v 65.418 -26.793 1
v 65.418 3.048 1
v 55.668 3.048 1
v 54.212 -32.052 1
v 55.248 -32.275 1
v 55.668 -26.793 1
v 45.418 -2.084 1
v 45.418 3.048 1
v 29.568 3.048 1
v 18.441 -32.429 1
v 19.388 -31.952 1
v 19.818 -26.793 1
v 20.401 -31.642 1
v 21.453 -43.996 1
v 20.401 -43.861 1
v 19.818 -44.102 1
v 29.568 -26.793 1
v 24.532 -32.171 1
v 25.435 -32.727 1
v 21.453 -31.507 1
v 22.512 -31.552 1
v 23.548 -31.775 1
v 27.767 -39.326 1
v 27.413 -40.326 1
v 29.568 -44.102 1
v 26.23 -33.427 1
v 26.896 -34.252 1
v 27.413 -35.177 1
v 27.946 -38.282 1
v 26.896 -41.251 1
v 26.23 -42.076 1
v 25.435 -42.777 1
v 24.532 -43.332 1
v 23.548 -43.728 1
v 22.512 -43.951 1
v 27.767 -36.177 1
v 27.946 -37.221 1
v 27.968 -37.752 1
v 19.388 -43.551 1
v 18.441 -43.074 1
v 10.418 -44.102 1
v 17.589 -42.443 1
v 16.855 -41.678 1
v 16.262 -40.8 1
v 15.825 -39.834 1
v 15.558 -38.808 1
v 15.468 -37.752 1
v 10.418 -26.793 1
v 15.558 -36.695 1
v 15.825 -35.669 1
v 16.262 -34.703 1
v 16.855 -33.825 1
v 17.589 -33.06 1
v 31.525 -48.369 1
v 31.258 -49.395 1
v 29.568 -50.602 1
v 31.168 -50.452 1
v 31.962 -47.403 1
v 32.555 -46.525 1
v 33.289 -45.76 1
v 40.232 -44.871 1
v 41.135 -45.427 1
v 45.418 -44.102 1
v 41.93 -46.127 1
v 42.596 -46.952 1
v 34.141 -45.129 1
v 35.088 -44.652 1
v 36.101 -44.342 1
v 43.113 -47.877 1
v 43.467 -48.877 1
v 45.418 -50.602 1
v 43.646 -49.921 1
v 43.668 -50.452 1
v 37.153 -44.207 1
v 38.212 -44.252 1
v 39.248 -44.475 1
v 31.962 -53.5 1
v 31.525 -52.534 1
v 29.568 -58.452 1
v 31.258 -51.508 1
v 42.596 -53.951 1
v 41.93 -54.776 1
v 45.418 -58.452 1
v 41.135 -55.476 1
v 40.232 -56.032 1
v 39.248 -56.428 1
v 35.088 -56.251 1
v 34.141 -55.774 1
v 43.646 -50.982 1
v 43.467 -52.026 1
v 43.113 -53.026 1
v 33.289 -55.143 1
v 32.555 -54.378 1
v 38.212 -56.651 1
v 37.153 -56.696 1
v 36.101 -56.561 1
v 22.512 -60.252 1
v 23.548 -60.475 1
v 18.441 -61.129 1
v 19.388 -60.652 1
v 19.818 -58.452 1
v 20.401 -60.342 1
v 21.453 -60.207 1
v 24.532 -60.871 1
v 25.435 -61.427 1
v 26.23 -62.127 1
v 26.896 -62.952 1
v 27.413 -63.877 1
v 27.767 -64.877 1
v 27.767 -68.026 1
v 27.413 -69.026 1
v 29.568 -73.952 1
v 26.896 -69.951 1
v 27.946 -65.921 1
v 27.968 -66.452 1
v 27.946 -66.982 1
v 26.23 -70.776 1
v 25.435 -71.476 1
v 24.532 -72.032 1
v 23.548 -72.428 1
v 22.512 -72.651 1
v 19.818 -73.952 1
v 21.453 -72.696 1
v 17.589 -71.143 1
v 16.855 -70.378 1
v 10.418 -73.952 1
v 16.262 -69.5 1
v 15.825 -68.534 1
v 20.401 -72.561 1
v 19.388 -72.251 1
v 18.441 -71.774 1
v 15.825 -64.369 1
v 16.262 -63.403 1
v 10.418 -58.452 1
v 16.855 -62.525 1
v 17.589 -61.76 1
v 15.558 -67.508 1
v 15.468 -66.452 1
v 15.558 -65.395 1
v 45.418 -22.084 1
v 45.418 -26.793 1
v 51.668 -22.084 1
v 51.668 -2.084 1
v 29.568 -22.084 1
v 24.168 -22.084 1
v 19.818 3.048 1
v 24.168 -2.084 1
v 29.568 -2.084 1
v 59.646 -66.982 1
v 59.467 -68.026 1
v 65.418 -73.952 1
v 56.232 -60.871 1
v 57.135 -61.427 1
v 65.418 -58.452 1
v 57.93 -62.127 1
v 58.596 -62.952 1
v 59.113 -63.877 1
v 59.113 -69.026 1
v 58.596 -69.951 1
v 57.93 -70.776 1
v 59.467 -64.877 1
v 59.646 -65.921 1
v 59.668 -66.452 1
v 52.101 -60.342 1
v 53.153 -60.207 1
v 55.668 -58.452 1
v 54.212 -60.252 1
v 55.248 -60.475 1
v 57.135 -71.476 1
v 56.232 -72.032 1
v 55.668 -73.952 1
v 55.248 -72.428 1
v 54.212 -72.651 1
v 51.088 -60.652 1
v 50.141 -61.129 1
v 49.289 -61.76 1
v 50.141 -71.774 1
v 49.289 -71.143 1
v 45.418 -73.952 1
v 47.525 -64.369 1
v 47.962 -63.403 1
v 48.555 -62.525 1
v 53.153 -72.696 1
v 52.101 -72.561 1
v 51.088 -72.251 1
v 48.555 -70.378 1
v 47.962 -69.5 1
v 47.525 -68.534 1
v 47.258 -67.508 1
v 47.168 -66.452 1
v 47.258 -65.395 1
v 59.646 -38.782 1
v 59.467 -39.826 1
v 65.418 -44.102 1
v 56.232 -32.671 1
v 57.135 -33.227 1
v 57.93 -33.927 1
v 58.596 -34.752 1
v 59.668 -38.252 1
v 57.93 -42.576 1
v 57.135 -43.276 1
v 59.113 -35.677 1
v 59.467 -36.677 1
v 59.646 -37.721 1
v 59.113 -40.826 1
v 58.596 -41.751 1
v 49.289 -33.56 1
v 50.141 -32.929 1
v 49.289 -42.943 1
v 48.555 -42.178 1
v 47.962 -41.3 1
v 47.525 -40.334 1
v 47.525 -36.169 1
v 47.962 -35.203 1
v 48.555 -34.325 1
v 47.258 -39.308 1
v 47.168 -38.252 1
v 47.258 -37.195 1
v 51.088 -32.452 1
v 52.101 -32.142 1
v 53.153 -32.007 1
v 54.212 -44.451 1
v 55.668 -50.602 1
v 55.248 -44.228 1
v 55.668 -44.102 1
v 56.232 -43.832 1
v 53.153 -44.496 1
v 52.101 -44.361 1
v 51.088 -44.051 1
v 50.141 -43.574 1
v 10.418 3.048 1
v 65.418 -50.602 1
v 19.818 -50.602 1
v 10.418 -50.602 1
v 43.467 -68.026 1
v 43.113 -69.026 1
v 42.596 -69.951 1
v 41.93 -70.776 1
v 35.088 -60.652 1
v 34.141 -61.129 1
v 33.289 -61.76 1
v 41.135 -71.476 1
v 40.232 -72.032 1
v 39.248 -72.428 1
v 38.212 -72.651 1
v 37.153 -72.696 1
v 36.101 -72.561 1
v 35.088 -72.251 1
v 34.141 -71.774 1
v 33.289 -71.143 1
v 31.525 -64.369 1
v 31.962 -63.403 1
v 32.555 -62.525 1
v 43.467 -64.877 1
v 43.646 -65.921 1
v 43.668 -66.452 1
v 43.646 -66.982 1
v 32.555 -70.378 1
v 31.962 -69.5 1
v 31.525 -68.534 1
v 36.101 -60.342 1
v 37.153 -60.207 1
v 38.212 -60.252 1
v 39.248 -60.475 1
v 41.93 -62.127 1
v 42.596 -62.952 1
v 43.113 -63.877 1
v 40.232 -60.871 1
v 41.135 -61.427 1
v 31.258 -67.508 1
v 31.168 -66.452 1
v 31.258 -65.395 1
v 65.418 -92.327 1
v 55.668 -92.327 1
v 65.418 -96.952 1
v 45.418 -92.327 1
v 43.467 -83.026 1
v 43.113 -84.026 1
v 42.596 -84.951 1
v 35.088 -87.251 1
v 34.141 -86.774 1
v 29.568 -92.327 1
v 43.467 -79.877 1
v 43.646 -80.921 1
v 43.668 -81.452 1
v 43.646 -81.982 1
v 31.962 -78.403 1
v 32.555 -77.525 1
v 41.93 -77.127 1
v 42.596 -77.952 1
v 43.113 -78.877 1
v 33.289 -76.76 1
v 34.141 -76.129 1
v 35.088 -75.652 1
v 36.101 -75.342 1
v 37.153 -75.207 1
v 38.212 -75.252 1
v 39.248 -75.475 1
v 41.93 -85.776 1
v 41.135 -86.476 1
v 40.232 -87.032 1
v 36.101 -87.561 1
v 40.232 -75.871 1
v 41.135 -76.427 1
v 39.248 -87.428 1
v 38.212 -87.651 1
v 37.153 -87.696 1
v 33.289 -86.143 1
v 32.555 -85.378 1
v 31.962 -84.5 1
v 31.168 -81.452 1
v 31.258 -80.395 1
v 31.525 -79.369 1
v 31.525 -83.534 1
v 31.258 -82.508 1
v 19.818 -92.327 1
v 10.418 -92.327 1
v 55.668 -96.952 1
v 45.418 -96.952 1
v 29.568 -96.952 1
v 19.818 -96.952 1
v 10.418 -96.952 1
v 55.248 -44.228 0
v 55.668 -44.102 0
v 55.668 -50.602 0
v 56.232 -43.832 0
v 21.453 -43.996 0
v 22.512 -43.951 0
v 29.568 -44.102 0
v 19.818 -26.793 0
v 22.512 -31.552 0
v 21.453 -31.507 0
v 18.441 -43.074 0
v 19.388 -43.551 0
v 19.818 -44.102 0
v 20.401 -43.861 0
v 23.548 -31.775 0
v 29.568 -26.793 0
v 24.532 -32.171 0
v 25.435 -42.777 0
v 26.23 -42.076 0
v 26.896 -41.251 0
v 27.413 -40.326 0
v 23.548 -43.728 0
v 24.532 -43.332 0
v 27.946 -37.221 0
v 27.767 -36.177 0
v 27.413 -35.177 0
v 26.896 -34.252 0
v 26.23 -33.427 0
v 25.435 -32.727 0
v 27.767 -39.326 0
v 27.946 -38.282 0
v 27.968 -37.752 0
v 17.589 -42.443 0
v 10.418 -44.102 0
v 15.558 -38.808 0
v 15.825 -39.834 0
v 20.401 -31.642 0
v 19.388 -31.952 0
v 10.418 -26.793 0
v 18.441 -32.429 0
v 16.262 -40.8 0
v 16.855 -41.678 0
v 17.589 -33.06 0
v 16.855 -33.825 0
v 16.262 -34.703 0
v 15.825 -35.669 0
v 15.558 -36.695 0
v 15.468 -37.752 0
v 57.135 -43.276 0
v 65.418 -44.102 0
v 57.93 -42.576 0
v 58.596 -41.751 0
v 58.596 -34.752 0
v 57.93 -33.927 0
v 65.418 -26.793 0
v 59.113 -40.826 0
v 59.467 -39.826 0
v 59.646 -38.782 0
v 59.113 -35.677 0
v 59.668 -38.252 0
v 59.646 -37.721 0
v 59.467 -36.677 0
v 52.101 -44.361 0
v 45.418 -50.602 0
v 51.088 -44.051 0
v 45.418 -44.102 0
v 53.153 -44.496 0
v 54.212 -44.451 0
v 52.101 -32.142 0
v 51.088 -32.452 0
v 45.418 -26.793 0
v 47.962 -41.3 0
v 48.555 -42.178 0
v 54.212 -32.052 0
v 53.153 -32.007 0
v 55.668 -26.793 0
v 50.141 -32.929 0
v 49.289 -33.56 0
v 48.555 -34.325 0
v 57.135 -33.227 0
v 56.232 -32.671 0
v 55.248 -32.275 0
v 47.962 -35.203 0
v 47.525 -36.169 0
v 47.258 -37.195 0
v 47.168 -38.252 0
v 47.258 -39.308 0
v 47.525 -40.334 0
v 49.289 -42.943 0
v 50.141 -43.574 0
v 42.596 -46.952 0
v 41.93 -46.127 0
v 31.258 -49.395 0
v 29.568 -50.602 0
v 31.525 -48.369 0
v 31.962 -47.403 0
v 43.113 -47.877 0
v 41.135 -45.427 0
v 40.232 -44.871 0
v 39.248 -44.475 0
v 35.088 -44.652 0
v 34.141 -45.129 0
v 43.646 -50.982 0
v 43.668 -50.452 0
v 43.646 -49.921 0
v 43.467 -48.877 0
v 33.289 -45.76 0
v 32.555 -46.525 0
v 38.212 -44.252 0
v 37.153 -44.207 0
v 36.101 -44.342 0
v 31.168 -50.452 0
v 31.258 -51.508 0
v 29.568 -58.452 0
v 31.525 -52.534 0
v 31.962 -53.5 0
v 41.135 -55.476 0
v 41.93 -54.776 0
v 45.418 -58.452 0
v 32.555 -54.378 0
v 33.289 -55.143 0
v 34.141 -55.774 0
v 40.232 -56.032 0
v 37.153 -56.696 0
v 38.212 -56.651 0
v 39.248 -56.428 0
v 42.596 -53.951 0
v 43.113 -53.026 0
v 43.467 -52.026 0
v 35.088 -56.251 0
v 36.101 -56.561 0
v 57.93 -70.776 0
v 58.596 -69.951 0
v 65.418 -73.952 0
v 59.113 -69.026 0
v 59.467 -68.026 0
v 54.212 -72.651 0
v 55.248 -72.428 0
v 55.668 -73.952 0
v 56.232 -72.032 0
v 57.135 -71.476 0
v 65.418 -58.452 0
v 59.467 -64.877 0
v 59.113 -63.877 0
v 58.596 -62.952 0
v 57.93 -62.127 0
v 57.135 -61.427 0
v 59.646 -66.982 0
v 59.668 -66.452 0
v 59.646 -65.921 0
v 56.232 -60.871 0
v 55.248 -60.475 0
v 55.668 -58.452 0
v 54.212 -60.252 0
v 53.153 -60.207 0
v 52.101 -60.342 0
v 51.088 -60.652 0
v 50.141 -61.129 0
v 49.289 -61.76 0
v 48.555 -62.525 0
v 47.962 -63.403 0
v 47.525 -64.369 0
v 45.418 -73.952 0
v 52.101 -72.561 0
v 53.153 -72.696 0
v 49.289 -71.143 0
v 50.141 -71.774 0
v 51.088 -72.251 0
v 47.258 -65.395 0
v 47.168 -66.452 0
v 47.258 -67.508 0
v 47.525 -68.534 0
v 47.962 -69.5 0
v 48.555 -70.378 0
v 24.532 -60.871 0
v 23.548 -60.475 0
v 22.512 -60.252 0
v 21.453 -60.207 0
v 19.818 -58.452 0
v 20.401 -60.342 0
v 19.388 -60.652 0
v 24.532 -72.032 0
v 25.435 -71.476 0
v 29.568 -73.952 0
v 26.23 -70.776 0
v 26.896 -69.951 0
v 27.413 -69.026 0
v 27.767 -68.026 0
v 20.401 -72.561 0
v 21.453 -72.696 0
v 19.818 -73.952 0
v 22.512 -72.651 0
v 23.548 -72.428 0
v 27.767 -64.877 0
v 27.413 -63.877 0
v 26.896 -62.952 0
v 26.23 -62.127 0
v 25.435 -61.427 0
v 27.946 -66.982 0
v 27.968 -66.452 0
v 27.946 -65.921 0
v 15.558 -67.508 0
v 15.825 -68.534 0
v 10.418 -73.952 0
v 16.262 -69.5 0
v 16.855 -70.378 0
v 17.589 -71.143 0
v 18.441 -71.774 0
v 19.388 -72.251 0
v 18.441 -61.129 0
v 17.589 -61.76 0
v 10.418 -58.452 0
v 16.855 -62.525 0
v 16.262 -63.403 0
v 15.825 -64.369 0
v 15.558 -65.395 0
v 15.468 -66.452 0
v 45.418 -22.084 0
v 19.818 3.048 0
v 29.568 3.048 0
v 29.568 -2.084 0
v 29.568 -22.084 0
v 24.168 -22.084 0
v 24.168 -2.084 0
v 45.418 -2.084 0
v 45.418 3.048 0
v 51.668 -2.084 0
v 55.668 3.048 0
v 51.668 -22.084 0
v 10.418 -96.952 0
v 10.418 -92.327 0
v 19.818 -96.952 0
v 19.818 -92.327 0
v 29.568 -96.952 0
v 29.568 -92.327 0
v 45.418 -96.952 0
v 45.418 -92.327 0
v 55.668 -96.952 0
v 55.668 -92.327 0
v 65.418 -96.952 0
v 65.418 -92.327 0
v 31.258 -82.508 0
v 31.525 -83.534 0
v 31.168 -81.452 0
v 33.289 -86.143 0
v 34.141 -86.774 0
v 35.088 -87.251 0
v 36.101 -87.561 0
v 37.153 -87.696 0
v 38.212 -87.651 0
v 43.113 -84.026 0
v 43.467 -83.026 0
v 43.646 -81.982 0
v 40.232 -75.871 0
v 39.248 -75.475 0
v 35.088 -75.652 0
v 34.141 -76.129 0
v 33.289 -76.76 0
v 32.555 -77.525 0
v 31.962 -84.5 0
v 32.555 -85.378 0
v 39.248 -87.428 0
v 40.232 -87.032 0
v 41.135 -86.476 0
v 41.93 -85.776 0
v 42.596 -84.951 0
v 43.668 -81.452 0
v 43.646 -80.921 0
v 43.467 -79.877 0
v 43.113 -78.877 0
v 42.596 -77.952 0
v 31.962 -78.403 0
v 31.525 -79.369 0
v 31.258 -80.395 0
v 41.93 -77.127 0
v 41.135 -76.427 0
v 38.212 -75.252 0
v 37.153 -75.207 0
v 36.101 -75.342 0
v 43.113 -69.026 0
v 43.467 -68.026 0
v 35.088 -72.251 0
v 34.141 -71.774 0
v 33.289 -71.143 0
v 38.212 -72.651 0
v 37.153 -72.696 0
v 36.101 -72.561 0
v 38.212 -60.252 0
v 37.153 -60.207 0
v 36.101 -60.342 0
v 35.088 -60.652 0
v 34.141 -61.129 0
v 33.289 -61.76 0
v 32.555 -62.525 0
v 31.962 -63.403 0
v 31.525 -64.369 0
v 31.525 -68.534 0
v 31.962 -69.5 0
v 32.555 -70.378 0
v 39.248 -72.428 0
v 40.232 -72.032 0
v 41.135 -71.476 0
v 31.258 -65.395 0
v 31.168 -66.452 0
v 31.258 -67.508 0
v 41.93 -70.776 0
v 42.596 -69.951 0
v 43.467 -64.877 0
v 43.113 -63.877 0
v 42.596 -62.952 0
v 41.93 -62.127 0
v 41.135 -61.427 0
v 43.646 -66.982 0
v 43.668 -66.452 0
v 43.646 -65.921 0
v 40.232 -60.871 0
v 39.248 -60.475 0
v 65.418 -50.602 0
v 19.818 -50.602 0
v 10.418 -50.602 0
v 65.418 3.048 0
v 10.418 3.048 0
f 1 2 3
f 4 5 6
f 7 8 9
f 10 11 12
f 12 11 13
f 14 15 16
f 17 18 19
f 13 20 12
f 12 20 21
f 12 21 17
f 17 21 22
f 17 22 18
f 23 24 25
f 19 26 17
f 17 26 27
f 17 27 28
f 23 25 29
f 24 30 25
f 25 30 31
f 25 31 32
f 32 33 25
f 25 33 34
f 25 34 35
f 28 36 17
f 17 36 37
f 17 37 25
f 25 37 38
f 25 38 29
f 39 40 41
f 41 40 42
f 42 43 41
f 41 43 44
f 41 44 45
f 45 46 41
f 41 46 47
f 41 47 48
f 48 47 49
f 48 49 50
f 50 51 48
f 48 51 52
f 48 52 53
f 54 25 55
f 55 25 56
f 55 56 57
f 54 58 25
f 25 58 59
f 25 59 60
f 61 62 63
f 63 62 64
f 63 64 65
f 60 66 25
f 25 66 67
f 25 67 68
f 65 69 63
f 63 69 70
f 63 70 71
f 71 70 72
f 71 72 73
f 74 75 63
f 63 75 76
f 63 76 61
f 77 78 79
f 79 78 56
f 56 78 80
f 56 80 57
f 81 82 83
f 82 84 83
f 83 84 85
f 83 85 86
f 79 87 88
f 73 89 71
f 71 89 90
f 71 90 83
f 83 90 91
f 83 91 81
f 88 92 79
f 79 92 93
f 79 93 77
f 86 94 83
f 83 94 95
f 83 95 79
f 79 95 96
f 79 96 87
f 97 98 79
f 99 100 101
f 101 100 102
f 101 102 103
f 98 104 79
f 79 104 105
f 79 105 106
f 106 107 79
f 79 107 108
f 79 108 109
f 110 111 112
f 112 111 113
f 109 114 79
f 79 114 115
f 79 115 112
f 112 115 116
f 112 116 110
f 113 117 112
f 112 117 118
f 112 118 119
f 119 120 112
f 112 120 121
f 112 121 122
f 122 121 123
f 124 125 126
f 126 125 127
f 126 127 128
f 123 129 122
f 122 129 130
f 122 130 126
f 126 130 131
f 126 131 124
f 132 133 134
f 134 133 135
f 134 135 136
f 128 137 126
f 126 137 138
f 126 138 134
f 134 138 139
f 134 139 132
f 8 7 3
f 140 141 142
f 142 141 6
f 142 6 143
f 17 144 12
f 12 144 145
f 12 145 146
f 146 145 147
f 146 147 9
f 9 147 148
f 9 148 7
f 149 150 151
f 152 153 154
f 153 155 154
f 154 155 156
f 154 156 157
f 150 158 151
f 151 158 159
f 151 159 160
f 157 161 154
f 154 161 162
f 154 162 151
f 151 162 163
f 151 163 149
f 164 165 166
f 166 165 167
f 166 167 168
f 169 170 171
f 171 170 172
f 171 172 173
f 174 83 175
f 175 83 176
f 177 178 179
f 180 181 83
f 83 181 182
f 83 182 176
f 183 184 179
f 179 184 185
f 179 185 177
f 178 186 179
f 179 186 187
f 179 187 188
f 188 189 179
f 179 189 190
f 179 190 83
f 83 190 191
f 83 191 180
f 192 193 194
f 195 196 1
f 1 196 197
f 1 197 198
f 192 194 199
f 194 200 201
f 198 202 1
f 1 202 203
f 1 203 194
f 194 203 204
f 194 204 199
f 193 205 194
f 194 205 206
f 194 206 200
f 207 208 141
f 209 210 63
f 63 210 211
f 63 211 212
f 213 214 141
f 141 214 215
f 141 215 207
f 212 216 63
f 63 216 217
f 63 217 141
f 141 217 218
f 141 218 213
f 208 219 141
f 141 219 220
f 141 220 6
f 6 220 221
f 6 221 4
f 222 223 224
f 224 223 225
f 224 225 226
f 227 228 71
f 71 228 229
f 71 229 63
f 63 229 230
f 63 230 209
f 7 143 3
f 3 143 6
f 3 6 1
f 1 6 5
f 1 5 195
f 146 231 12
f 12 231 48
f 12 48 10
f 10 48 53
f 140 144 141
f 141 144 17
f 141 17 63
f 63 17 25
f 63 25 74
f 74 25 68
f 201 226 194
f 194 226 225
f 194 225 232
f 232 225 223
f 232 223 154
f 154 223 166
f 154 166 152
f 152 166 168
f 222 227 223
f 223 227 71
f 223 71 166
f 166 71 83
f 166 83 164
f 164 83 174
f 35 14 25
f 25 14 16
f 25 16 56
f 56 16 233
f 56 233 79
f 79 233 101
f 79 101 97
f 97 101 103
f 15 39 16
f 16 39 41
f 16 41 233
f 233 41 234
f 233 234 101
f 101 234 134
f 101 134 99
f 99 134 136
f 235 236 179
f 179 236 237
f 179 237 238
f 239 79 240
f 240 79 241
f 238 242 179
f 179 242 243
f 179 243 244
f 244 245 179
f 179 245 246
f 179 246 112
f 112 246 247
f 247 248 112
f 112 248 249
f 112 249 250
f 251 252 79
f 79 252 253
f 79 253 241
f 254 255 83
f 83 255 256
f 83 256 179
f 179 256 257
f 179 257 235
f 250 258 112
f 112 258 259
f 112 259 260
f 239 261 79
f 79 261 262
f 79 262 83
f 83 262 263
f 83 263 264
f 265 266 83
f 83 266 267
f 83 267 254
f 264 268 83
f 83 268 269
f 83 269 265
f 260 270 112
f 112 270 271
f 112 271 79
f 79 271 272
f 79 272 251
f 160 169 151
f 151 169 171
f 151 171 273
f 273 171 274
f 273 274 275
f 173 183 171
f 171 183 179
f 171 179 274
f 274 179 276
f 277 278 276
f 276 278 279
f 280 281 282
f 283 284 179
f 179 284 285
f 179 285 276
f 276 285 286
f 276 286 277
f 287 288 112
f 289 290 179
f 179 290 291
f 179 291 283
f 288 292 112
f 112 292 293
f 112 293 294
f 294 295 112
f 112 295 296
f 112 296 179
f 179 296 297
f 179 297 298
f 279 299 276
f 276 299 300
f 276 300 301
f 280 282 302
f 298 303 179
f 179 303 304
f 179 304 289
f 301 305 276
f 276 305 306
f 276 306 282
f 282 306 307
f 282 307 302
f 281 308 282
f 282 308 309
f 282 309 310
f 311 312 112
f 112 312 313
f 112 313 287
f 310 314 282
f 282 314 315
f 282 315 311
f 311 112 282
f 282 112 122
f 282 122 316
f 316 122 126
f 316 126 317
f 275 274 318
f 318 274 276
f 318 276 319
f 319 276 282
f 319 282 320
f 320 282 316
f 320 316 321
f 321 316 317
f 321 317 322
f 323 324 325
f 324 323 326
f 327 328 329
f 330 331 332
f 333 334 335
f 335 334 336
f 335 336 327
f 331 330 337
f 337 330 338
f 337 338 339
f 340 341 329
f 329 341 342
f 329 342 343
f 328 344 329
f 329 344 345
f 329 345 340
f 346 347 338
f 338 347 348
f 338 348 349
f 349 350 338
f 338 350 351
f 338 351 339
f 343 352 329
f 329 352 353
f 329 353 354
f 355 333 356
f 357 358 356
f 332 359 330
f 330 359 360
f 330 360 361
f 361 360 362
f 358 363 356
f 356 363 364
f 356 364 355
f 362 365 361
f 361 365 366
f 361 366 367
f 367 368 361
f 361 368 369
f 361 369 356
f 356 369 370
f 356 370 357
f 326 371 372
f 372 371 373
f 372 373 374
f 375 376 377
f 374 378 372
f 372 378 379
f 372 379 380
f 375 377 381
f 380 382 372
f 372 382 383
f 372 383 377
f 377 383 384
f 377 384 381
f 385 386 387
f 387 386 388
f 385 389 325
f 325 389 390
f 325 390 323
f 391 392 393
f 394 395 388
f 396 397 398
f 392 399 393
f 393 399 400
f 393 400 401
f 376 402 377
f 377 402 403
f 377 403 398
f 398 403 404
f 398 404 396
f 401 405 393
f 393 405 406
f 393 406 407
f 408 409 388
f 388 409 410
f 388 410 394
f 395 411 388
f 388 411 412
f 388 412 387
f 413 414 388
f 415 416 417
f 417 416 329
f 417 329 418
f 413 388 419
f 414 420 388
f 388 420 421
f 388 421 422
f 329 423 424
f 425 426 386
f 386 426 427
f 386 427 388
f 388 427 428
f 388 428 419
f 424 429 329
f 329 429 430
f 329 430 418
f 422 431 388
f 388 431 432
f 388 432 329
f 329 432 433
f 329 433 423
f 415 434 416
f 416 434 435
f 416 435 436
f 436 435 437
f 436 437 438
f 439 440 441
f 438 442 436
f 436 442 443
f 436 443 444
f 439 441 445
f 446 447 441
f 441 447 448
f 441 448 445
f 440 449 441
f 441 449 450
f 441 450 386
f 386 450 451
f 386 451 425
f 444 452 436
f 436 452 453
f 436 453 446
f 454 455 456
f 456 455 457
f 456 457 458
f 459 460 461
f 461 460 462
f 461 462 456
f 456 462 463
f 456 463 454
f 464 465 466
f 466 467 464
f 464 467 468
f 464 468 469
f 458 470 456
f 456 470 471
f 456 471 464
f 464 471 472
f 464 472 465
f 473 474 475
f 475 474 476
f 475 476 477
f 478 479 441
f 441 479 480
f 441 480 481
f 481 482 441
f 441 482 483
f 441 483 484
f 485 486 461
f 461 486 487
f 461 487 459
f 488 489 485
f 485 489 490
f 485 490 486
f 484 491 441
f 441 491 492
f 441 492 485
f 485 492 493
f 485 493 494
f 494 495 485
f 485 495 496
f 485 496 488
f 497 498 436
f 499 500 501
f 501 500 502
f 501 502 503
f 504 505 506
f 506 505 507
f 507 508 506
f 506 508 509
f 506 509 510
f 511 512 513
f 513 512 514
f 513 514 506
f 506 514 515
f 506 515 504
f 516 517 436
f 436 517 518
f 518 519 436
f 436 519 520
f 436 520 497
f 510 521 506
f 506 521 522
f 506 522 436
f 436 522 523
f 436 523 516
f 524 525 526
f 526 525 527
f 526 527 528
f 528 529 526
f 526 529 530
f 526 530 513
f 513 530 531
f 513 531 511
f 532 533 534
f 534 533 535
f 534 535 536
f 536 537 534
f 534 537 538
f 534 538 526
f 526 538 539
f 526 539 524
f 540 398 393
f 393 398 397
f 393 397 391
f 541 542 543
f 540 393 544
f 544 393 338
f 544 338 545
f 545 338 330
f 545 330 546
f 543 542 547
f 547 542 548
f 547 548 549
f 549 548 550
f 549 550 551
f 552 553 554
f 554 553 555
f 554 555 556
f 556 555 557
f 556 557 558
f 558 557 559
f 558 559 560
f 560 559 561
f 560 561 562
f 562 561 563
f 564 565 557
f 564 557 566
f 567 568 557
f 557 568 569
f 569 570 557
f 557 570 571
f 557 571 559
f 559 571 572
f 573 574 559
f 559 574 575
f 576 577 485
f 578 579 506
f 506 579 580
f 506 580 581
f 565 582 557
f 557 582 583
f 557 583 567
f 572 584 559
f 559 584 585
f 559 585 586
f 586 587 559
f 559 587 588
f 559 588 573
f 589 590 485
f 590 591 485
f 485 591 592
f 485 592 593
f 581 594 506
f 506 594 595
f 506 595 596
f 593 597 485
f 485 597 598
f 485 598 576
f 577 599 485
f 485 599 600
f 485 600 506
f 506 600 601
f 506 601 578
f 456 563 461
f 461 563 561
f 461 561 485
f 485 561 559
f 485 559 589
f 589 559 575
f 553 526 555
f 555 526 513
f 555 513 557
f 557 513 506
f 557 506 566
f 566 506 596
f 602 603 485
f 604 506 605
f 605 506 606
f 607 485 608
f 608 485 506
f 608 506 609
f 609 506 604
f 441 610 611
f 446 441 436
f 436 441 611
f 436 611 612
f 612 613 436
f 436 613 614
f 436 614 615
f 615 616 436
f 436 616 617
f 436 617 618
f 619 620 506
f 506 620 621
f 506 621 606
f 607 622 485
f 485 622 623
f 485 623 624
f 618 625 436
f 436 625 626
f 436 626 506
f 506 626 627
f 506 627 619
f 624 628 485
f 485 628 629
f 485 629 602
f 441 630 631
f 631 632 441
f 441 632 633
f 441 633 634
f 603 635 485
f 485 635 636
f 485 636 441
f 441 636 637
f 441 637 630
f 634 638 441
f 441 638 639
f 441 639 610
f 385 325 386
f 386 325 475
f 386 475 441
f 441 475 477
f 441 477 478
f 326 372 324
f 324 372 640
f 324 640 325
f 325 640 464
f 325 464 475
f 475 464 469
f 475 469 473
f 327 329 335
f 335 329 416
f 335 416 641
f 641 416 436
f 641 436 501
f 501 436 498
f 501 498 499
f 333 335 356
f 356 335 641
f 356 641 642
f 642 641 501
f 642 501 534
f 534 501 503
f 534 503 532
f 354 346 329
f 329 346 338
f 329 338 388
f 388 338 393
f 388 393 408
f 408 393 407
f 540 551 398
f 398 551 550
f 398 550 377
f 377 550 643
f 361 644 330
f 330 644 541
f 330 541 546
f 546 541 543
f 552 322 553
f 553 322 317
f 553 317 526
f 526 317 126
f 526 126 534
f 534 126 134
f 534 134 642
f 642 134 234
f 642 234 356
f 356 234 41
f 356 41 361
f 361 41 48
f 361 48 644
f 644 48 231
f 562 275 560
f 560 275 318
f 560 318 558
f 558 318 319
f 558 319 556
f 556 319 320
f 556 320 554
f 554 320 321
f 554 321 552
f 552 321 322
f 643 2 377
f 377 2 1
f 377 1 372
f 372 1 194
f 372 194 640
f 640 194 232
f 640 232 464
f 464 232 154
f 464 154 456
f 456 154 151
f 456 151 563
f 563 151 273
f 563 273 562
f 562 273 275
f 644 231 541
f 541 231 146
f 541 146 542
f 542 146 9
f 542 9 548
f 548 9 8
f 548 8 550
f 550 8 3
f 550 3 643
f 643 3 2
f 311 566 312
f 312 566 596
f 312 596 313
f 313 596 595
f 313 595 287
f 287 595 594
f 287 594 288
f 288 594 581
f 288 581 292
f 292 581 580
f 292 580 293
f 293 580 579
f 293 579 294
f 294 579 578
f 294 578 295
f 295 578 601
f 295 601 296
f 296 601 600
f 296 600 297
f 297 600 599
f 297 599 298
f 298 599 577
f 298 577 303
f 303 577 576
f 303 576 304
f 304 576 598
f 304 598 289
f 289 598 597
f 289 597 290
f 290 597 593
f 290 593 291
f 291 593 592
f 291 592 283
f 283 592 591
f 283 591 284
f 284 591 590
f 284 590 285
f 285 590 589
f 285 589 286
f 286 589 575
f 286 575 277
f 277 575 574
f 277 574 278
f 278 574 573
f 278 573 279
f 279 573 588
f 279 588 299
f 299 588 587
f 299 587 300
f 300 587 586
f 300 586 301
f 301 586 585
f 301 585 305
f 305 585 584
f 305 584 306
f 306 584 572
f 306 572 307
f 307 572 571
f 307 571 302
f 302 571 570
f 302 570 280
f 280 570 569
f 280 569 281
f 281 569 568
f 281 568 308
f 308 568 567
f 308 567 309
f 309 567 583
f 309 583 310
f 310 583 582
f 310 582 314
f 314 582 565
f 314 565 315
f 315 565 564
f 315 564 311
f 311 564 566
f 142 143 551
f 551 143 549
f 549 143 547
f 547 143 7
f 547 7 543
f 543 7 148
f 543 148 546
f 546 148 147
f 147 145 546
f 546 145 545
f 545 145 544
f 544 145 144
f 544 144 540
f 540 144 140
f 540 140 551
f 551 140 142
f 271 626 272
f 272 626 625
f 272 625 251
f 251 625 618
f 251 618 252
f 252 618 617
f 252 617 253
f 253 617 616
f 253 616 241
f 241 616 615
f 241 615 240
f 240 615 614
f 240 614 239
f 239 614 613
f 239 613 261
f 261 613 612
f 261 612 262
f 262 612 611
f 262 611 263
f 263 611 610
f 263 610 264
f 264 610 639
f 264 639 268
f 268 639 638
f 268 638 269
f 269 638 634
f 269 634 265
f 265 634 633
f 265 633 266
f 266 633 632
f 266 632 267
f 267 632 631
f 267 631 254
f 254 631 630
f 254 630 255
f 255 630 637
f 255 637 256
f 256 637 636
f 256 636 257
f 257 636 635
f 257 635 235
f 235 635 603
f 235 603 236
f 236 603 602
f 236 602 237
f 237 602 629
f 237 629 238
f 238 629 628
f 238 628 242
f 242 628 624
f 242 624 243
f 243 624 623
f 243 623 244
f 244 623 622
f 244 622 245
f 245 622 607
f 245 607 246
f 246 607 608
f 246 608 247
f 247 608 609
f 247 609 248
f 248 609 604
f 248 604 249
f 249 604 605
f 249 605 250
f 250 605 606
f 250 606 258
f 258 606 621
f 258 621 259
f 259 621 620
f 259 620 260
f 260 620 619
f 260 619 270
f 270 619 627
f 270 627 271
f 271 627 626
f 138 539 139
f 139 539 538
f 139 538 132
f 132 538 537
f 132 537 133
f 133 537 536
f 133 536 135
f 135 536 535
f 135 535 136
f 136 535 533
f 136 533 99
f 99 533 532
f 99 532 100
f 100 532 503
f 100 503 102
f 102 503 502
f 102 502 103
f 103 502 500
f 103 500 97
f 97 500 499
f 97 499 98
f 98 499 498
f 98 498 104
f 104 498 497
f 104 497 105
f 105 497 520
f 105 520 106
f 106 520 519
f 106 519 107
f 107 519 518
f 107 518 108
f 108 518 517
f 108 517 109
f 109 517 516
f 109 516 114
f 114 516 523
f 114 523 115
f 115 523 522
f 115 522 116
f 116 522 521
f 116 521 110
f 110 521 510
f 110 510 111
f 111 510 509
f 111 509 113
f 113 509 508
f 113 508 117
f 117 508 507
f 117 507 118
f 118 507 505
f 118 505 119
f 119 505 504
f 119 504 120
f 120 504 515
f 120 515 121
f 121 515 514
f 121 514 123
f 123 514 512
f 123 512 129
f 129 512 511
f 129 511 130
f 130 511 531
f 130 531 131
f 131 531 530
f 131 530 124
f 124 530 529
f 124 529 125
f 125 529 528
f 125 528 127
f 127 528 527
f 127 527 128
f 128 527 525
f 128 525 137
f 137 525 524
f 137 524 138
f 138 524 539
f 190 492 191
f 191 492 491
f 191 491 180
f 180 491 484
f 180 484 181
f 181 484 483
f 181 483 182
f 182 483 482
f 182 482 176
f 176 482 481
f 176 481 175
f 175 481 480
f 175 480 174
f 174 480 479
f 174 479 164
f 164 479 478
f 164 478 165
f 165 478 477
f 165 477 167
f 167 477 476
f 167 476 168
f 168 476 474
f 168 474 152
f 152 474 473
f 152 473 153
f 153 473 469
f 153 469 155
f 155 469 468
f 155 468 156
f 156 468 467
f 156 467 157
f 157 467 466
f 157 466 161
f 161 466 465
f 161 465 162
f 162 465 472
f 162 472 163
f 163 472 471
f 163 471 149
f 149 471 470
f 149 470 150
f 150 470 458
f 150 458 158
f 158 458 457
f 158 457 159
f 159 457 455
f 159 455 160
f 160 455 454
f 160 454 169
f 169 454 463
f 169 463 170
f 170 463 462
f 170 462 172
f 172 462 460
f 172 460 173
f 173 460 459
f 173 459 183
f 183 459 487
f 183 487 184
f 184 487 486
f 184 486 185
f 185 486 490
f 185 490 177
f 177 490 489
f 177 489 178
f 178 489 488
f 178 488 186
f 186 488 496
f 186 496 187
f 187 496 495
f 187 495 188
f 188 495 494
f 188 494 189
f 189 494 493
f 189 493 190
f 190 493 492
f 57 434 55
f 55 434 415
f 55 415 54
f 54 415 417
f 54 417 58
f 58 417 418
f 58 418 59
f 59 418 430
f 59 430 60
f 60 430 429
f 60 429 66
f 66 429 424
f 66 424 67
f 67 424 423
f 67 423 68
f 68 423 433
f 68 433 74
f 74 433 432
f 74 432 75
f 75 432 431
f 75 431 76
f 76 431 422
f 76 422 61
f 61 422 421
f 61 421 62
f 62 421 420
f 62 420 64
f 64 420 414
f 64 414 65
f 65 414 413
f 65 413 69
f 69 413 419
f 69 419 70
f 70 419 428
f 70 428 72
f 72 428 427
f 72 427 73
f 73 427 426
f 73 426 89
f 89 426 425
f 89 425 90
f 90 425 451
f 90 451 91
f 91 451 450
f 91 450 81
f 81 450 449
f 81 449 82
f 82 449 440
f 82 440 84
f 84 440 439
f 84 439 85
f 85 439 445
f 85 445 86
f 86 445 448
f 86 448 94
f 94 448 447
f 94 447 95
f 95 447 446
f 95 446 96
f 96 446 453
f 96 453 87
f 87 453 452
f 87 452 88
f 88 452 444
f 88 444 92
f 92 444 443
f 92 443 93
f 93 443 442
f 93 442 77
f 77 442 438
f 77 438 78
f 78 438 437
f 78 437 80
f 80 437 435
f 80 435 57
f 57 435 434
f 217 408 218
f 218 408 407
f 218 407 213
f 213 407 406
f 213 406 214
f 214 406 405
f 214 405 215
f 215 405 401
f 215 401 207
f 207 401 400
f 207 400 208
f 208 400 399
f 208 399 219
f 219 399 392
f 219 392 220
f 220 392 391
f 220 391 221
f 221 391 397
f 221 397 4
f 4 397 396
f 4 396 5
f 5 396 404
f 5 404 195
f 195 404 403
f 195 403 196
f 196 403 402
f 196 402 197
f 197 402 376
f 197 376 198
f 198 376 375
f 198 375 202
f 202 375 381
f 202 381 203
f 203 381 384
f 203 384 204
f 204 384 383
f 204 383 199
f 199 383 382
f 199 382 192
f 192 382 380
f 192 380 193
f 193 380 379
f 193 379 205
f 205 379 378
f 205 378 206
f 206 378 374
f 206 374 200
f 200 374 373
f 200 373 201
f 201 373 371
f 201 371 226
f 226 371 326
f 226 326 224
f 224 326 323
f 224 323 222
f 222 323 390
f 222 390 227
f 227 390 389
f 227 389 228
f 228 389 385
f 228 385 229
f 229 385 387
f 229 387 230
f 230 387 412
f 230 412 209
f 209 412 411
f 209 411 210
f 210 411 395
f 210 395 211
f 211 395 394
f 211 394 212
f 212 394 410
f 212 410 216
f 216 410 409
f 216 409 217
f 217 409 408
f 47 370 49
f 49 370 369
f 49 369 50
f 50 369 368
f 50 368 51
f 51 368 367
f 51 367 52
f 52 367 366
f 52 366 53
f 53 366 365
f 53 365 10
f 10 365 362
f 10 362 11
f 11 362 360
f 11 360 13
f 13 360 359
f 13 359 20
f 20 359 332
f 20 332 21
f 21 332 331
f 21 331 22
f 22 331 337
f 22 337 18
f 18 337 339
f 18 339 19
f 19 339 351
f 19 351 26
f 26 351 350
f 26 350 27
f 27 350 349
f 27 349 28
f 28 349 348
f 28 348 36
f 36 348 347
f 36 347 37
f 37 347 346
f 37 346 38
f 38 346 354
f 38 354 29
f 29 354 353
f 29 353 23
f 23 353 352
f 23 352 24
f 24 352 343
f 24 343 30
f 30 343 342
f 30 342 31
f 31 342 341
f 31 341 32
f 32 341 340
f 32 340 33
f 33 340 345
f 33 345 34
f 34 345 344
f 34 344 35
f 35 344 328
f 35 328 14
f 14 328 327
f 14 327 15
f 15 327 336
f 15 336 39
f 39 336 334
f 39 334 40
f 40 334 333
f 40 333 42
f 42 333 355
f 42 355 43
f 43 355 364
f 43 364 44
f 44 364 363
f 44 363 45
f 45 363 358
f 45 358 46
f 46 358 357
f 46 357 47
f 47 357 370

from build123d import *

# Parameters (mm, degrees)
SKETCH_1_W      = 55
SKETCH_1_H      = 100
SKETCH_1_R      = 6.25
SKETCH_1_W_2    = 27.5
SKETCH_1_H_2    = 20
EXTRUDE_1_DEPTH = 1


with BuildPart() as part:
    # 草图1 → 凸台-拉伸1 (new body)
    with BuildSketch(Plane.XY):
        with Locations((37.918181818, -46.951515152)):
            Rectangle(SKETCH_1_W, SKETCH_1_H)
        with Locations((37.418181818, -81.451515152)):
            Circle(SKETCH_1_R, mode=Mode.SUBTRACT)
        with Locations((37.418181818, -66.451515152)):
            Circle(SKETCH_1_R, mode=Mode.SUBTRACT)
        with Locations((21.718181818, -66.451515152)):
            Circle(SKETCH_1_R, mode=Mode.SUBTRACT)
        with Locations((53.418181818, -66.451515152)):
            Circle(SKETCH_1_R, mode=Mode.SUBTRACT)
        with Locations((37.418181818, -50.451515152)):
            Circle(SKETCH_1_R, mode=Mode.SUBTRACT)
        with Locations((53.418181818, -38.251515152)):
            Circle(SKETCH_1_R, mode=Mode.SUBTRACT)
        with Locations((21.718181818, -37.751515152)):
            Circle(SKETCH_1_R, mode=Mode.SUBTRACT)
        with Locations((37.918181818, -12.084434283)):
            Rectangle(SKETCH_1_W_2, SKETCH_1_H_2, mode=Mode.SUBTRACT)
    extrude(amount=EXTRUDE_1_DEPTH)


solid = part.part
